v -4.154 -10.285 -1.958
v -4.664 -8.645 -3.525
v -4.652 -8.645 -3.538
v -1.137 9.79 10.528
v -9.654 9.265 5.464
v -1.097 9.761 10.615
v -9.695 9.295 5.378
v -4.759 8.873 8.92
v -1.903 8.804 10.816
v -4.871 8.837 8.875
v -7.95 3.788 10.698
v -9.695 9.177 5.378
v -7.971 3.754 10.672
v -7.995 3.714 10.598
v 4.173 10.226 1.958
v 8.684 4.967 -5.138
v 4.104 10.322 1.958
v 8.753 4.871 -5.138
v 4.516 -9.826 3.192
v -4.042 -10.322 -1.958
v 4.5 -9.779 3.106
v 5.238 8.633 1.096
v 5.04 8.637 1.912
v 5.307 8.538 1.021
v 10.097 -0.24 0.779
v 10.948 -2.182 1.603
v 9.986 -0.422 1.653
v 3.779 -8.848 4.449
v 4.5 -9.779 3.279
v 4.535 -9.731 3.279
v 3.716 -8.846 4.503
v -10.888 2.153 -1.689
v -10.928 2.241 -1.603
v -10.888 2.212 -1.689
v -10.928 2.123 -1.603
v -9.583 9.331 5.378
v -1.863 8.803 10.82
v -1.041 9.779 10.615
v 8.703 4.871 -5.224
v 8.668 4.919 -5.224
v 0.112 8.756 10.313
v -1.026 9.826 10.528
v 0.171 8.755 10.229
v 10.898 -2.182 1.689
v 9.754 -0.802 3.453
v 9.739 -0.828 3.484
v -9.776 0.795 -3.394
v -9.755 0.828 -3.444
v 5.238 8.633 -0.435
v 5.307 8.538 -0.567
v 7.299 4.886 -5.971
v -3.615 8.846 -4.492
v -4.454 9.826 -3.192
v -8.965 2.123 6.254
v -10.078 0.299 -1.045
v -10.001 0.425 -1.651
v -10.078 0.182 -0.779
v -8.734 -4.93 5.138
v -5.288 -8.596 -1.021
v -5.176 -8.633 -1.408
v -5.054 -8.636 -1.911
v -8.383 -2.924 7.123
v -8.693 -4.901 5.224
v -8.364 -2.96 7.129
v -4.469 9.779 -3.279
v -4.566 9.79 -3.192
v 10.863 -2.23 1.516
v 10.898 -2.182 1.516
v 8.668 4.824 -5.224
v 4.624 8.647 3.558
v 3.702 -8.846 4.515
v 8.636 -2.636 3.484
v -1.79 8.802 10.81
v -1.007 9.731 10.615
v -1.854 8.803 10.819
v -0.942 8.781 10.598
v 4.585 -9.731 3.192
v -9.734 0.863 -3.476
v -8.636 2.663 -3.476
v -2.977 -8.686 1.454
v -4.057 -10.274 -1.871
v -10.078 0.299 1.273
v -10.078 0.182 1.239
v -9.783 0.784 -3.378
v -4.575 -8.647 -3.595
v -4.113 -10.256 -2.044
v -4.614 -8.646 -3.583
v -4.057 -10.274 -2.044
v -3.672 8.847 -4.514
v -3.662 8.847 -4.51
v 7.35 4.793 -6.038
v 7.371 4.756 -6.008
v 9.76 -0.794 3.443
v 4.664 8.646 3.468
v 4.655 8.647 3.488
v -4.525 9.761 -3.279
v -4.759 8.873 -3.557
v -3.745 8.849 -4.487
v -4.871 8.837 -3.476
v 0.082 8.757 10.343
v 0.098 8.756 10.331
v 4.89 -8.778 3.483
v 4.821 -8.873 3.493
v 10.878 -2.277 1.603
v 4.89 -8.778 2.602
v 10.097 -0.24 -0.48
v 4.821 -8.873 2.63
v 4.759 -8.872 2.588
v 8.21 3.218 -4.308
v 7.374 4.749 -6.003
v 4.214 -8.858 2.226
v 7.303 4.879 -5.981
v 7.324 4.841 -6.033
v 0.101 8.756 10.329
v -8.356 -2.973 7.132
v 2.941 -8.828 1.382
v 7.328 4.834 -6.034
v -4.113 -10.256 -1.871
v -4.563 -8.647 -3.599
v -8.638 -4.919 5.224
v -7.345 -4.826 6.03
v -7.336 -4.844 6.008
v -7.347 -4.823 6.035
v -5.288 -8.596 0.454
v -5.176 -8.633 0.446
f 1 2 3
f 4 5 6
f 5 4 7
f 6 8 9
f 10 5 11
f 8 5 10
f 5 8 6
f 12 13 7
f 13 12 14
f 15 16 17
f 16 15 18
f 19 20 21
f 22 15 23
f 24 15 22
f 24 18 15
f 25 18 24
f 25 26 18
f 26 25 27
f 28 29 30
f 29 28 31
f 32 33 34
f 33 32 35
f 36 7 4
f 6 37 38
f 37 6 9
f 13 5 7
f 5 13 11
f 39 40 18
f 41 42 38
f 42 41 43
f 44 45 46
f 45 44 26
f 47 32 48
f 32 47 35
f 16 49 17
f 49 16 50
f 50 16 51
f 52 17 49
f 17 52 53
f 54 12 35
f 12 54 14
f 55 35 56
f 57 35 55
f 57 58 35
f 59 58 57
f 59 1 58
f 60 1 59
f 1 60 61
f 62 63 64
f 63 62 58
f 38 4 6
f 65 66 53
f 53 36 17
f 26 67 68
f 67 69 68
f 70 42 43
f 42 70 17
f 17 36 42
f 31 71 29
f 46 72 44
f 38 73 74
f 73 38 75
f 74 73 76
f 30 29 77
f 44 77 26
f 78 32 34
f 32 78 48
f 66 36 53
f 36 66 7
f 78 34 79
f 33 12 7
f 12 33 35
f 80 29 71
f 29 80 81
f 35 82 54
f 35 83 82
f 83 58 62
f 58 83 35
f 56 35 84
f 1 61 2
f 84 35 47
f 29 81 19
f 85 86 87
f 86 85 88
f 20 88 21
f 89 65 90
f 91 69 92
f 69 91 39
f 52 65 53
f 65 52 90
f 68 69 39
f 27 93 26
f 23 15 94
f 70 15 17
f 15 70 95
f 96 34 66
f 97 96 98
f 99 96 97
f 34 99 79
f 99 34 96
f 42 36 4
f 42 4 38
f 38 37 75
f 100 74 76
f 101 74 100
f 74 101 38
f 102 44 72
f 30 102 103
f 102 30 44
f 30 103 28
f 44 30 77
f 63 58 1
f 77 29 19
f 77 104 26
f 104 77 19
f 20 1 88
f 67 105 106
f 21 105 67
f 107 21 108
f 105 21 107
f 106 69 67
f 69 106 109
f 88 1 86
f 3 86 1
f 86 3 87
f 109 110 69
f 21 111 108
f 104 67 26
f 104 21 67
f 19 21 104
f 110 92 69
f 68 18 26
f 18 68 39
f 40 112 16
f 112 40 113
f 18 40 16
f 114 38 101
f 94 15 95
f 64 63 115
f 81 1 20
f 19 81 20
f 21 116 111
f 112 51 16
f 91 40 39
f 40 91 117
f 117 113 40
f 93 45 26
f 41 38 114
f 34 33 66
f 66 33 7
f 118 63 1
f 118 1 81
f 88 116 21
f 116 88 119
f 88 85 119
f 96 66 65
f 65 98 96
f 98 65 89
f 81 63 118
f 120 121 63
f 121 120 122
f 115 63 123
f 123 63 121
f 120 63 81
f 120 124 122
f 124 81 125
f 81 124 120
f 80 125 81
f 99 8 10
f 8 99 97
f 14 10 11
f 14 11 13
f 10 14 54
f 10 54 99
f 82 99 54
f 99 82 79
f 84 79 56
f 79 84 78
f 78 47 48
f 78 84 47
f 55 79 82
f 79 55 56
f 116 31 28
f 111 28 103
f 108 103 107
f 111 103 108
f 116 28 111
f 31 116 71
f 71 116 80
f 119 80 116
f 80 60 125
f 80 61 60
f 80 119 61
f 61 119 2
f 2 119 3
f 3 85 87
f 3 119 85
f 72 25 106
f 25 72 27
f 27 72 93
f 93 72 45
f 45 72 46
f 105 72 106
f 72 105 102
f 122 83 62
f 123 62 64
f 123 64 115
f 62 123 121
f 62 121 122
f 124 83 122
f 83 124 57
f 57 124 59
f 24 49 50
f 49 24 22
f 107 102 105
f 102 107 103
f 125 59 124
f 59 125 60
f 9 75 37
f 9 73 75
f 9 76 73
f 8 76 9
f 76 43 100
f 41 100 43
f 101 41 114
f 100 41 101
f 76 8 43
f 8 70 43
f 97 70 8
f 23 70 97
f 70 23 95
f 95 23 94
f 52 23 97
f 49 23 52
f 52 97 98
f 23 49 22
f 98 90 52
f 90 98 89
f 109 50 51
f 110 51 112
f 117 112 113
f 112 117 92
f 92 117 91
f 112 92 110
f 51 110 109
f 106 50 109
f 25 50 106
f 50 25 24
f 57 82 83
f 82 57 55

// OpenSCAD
// Auto-generated OpenSCAD file

    inner_points = 10*[[-0.5206742858014932, -0.8537545783635307, 0.5000000000005902], [0.5206728937674587, 0.8537570765312255, -0.5000000000005902], [-0.9997117261075887, 0.024039891191902935, -0.5000000000008494], [0.9997103340735543, -0.024037393024208206, 0.5000000000008494], [-0.47903813632434417, 0.877795718641069, 0.4999999999985605], [0.47903674429030957, -0.8777932204733743, -0.4999999999985605], [-0.47903813632352327, 0.8777957186398769, -0.5000000000014396], [0.47903674428948867, -0.8777932204721822, 0.5000000000014396], [0.5206728937666378, 0.8537570765324173, 0.4999999999994098], [-0.5206742858006723, -0.8537545783647226, -0.4999999999994098], [-0.9997117261084095, 0.024039891193094905, 0.49999999999915057], [0.999710334074375, -0.024037393025400176, -0.49999999999915057], [0.013878020474284998, 0.5771846814202832, 1.3164965809270497], [-0.5067955693097805, -0.2765711460276909, 1.3164965809276397], [0.4929154607812014, -0.30060978813634254, 1.3164965809284892]];

    outer_points = 10*[[-0.009559115747354546, -0.4376223667561964, 1.0287834016063993], [0.009559115747354546, 0.4376223667561964, -1.0287834016063993], [-0.4072695443938975, -1.0226427455134965, -0.19578900188162973], [0.4072695443938975, 1.0226427455134965, 0.19578900188162973], [-1.0847562624532703, 0.21822357574934653, -0.1602570499403399], [1.0847562624532703, -0.21822357574934653, 0.1602570499403399], [-0.6267257065821188, -0.3172723939217513, -0.8698006189721327], [0.6267257065821188, 0.3172723939217513, 0.8698006189721327], [-0.448471440123797, 0.9731183364272943, -0.31923983257460653], [0.448471440123797, -0.9731183364272943, 0.31923983257460653], [-0.8653001002650492, -0.4871467758423988, 0.513754567150163], [0.8653001002650492, 0.4871467758423988, -0.513754567150163], [-0.9613947096667688, 0.9235939273410919, 0.5377648654673648], [-0.7419385474785475, 0.21822357574934653, 1.2117764825578676], [-0.10565372514907426, 0.9731183364272943, 1.052793699923601]];

    // Convex hull for inner set (I)
    module inner_hull() {
        hull() {
            for (p = inner_points) {
                translate(p) sphere(r=0.1);
            }
        }
    }

    // Convex hull for outer set (O) minus inner hull (O \ I)
    module outer_minus_inner() {
        difference() {
            hull() {
                for (p = outer_points) {
                    translate(p) sphere(r=0.1);
                }
            }
            inner_hull(); // Subtract inner hull
        }
    }

    // Convex hull for outer set (O) minus all translated inner hulls
    module outer_minus_AllTranslationInner() {
        difference() {
            hull() {
                for (p = outer_points) {
                    translate(p) sphere(r=0.1);
                }
            }
            hull() {
                translate([0,0,50]) inner_hull();
                translate([0,0,-50]) inner_hull();
            }; // Subtract translated inner hulls
        }
    }

    // Difference between outer_minus_inner and outer_minus_AllTranslationInner
    module outer_minus_inner_diff() {
        difference() {
            // Outer minus inner
            difference() {
                hull() {
                    for (p = outer_points) {
                        translate(p) sphere(r=0.1);
                    }
                }
                inner_hull();
            }

            // Subtract Outer minus AllTranslationInner
            difference() {
                hull() {
                    for (p = outer_points) {
                        translate(p) sphere(r=0.1);
                    }
                }
                hull() {
                    translate([0,0,50]) inner_hull();
                    translate([0,0,-50]) inner_hull();
                };
            }
        }
    }

    // Rendering all with colors applied
    color([0, 1, 0, 1]) outer_minus_AllTranslationInner(); // Opaque green
    
